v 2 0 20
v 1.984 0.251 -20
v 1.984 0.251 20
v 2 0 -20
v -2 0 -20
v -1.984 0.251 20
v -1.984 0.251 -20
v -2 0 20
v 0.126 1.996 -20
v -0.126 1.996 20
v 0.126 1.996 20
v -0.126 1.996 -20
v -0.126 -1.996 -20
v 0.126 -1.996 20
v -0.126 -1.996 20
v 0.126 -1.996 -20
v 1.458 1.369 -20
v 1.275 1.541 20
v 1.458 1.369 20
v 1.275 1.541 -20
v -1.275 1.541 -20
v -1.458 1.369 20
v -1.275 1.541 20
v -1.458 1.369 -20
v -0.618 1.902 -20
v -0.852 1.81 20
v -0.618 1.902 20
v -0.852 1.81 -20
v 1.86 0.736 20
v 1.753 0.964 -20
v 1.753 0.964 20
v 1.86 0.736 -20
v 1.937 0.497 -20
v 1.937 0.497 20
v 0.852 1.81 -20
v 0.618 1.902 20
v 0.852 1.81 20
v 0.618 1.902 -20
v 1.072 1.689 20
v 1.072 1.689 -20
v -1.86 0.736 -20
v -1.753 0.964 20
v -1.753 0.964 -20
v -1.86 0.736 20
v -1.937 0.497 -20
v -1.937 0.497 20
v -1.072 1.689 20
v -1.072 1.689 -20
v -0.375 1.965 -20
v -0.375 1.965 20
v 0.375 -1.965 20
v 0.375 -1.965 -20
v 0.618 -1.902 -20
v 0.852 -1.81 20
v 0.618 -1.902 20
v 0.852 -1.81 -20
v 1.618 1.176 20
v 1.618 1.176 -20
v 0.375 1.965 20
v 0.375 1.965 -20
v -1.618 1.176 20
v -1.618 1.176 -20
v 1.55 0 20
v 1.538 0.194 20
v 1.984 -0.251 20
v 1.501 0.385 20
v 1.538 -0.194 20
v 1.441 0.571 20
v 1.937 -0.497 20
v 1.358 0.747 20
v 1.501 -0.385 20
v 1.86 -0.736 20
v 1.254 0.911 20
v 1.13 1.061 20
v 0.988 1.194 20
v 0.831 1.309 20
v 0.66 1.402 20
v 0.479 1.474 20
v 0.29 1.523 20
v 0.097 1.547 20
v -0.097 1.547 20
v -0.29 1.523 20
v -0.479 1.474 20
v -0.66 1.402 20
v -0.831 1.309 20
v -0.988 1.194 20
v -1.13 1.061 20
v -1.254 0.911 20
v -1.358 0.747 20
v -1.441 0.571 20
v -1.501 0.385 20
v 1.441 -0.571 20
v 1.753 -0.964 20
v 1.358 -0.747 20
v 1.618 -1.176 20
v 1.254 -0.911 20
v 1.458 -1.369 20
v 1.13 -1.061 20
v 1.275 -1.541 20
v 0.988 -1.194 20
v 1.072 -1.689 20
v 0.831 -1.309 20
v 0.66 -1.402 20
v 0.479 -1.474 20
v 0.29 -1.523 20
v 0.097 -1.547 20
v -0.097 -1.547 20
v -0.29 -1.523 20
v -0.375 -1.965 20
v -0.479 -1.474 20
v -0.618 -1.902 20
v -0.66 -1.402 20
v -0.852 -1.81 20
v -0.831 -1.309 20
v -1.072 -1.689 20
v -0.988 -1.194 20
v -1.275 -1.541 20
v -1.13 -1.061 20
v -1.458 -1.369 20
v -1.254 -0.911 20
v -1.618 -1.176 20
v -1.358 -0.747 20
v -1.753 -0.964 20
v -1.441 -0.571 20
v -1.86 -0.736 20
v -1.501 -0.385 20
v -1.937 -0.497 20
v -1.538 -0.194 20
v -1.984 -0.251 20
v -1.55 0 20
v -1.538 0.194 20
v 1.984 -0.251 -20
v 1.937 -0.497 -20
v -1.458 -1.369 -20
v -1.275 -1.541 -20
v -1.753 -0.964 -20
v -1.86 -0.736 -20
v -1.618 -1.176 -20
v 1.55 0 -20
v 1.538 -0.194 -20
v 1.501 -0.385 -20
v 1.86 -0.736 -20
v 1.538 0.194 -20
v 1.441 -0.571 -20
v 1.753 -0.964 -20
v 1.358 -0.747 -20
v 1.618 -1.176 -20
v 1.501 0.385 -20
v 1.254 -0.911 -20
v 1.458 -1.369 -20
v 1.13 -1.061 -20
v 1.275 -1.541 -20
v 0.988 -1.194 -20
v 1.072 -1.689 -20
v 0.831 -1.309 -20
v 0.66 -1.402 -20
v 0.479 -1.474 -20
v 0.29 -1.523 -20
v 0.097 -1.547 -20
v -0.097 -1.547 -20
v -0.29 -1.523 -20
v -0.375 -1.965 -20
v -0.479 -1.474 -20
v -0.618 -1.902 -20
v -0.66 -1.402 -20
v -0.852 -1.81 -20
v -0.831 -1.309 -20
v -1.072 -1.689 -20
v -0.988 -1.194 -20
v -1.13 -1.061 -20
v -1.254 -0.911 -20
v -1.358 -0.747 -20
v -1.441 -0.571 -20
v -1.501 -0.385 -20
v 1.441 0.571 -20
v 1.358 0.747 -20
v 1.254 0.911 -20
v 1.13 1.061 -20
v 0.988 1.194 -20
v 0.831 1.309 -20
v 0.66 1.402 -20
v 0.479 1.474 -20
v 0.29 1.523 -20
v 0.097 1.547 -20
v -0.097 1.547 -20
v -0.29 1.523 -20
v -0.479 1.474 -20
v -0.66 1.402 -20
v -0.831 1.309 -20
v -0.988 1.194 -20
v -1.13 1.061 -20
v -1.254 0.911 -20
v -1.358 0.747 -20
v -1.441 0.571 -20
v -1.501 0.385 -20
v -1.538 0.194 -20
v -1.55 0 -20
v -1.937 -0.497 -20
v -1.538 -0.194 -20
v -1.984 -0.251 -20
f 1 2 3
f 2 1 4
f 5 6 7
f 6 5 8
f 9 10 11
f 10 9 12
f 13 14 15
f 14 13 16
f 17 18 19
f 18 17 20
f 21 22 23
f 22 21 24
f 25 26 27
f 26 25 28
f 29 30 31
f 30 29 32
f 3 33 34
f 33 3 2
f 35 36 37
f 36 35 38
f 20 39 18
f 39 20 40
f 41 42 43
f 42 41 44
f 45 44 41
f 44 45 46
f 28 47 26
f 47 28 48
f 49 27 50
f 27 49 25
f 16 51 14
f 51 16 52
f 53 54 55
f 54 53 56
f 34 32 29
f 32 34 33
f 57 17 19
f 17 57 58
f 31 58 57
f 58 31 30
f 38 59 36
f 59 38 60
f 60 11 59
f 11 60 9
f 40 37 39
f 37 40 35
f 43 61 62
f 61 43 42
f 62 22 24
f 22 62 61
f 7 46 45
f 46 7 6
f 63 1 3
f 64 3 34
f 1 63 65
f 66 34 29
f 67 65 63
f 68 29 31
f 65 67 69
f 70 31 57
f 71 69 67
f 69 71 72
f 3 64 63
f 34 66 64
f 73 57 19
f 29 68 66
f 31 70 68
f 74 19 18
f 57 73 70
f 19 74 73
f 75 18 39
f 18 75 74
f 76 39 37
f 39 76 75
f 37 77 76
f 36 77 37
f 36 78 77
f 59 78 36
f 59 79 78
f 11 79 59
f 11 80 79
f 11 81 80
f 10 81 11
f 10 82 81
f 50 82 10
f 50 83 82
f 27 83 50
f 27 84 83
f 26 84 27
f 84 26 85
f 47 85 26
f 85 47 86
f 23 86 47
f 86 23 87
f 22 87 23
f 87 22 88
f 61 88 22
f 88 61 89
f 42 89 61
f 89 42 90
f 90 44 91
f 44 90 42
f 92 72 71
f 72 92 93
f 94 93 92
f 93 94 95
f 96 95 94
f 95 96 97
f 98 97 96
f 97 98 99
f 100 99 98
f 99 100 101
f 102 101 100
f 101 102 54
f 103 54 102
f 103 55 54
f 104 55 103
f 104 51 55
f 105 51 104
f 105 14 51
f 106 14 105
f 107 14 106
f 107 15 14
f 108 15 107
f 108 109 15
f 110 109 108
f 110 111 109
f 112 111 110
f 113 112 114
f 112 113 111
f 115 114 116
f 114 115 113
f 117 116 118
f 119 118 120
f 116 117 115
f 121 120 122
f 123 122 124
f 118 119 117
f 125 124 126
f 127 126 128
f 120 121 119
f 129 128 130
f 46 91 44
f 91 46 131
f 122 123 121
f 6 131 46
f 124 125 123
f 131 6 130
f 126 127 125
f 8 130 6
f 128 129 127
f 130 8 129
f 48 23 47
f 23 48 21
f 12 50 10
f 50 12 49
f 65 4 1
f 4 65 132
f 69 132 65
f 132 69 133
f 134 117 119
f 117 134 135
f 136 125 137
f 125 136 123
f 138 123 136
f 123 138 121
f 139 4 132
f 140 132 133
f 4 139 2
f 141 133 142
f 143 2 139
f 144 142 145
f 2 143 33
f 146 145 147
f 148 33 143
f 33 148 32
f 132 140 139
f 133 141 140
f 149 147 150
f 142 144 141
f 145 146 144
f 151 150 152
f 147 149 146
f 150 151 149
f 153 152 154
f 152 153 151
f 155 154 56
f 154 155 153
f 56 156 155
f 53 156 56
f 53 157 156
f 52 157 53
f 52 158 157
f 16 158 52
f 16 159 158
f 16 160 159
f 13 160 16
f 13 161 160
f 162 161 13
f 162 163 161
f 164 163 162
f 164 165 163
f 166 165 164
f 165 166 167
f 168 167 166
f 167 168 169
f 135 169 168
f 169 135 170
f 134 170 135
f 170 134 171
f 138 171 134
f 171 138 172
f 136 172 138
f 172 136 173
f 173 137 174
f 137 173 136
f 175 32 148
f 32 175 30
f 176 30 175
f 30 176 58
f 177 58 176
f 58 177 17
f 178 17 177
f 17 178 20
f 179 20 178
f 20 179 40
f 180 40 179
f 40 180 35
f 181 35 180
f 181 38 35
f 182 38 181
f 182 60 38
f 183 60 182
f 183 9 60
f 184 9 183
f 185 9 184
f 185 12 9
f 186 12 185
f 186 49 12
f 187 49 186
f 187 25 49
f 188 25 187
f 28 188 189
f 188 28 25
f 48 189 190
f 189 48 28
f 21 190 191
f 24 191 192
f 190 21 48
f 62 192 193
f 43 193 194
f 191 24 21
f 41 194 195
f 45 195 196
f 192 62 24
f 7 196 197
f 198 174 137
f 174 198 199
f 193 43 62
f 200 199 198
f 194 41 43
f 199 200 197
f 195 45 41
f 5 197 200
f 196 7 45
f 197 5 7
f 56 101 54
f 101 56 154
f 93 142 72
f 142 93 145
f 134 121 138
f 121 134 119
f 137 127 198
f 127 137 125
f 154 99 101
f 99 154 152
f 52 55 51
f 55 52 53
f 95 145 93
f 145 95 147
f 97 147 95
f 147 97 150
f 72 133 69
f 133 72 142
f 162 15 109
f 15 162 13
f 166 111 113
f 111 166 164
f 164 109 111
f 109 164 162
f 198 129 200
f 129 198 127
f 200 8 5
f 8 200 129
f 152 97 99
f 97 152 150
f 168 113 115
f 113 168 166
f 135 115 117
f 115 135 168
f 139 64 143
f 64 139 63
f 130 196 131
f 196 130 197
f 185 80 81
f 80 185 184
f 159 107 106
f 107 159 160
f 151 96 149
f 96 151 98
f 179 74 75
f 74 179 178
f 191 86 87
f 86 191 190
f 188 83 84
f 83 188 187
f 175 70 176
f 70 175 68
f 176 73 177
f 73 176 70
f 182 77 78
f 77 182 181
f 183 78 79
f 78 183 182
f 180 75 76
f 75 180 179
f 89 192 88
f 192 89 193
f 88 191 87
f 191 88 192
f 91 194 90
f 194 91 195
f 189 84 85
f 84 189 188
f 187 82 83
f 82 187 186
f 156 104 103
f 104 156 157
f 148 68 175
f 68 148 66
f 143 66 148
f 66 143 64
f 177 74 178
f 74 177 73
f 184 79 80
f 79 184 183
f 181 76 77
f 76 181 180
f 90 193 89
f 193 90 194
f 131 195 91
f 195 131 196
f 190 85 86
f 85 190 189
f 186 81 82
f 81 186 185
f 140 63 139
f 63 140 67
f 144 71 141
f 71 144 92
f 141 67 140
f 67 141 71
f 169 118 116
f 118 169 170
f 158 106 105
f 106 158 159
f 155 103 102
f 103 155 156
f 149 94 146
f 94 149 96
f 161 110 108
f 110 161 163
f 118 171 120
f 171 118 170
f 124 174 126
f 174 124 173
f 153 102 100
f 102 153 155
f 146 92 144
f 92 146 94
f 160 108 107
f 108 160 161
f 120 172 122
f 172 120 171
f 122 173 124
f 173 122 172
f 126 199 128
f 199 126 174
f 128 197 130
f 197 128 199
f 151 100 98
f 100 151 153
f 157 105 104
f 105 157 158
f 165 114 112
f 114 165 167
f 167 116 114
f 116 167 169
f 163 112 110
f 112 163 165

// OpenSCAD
$fn = 50;


difference() {
	union() {
		translate(v = [0, 0, -20.0000000000]) {
			cylinder(h = 40, r = 2.0000000000);
		}
	}
	union() {
		translate(v = [0, 0, -100.0000000000]) {
			cylinder(h = 200, r = 1.5500000000);
		}
	}
}
